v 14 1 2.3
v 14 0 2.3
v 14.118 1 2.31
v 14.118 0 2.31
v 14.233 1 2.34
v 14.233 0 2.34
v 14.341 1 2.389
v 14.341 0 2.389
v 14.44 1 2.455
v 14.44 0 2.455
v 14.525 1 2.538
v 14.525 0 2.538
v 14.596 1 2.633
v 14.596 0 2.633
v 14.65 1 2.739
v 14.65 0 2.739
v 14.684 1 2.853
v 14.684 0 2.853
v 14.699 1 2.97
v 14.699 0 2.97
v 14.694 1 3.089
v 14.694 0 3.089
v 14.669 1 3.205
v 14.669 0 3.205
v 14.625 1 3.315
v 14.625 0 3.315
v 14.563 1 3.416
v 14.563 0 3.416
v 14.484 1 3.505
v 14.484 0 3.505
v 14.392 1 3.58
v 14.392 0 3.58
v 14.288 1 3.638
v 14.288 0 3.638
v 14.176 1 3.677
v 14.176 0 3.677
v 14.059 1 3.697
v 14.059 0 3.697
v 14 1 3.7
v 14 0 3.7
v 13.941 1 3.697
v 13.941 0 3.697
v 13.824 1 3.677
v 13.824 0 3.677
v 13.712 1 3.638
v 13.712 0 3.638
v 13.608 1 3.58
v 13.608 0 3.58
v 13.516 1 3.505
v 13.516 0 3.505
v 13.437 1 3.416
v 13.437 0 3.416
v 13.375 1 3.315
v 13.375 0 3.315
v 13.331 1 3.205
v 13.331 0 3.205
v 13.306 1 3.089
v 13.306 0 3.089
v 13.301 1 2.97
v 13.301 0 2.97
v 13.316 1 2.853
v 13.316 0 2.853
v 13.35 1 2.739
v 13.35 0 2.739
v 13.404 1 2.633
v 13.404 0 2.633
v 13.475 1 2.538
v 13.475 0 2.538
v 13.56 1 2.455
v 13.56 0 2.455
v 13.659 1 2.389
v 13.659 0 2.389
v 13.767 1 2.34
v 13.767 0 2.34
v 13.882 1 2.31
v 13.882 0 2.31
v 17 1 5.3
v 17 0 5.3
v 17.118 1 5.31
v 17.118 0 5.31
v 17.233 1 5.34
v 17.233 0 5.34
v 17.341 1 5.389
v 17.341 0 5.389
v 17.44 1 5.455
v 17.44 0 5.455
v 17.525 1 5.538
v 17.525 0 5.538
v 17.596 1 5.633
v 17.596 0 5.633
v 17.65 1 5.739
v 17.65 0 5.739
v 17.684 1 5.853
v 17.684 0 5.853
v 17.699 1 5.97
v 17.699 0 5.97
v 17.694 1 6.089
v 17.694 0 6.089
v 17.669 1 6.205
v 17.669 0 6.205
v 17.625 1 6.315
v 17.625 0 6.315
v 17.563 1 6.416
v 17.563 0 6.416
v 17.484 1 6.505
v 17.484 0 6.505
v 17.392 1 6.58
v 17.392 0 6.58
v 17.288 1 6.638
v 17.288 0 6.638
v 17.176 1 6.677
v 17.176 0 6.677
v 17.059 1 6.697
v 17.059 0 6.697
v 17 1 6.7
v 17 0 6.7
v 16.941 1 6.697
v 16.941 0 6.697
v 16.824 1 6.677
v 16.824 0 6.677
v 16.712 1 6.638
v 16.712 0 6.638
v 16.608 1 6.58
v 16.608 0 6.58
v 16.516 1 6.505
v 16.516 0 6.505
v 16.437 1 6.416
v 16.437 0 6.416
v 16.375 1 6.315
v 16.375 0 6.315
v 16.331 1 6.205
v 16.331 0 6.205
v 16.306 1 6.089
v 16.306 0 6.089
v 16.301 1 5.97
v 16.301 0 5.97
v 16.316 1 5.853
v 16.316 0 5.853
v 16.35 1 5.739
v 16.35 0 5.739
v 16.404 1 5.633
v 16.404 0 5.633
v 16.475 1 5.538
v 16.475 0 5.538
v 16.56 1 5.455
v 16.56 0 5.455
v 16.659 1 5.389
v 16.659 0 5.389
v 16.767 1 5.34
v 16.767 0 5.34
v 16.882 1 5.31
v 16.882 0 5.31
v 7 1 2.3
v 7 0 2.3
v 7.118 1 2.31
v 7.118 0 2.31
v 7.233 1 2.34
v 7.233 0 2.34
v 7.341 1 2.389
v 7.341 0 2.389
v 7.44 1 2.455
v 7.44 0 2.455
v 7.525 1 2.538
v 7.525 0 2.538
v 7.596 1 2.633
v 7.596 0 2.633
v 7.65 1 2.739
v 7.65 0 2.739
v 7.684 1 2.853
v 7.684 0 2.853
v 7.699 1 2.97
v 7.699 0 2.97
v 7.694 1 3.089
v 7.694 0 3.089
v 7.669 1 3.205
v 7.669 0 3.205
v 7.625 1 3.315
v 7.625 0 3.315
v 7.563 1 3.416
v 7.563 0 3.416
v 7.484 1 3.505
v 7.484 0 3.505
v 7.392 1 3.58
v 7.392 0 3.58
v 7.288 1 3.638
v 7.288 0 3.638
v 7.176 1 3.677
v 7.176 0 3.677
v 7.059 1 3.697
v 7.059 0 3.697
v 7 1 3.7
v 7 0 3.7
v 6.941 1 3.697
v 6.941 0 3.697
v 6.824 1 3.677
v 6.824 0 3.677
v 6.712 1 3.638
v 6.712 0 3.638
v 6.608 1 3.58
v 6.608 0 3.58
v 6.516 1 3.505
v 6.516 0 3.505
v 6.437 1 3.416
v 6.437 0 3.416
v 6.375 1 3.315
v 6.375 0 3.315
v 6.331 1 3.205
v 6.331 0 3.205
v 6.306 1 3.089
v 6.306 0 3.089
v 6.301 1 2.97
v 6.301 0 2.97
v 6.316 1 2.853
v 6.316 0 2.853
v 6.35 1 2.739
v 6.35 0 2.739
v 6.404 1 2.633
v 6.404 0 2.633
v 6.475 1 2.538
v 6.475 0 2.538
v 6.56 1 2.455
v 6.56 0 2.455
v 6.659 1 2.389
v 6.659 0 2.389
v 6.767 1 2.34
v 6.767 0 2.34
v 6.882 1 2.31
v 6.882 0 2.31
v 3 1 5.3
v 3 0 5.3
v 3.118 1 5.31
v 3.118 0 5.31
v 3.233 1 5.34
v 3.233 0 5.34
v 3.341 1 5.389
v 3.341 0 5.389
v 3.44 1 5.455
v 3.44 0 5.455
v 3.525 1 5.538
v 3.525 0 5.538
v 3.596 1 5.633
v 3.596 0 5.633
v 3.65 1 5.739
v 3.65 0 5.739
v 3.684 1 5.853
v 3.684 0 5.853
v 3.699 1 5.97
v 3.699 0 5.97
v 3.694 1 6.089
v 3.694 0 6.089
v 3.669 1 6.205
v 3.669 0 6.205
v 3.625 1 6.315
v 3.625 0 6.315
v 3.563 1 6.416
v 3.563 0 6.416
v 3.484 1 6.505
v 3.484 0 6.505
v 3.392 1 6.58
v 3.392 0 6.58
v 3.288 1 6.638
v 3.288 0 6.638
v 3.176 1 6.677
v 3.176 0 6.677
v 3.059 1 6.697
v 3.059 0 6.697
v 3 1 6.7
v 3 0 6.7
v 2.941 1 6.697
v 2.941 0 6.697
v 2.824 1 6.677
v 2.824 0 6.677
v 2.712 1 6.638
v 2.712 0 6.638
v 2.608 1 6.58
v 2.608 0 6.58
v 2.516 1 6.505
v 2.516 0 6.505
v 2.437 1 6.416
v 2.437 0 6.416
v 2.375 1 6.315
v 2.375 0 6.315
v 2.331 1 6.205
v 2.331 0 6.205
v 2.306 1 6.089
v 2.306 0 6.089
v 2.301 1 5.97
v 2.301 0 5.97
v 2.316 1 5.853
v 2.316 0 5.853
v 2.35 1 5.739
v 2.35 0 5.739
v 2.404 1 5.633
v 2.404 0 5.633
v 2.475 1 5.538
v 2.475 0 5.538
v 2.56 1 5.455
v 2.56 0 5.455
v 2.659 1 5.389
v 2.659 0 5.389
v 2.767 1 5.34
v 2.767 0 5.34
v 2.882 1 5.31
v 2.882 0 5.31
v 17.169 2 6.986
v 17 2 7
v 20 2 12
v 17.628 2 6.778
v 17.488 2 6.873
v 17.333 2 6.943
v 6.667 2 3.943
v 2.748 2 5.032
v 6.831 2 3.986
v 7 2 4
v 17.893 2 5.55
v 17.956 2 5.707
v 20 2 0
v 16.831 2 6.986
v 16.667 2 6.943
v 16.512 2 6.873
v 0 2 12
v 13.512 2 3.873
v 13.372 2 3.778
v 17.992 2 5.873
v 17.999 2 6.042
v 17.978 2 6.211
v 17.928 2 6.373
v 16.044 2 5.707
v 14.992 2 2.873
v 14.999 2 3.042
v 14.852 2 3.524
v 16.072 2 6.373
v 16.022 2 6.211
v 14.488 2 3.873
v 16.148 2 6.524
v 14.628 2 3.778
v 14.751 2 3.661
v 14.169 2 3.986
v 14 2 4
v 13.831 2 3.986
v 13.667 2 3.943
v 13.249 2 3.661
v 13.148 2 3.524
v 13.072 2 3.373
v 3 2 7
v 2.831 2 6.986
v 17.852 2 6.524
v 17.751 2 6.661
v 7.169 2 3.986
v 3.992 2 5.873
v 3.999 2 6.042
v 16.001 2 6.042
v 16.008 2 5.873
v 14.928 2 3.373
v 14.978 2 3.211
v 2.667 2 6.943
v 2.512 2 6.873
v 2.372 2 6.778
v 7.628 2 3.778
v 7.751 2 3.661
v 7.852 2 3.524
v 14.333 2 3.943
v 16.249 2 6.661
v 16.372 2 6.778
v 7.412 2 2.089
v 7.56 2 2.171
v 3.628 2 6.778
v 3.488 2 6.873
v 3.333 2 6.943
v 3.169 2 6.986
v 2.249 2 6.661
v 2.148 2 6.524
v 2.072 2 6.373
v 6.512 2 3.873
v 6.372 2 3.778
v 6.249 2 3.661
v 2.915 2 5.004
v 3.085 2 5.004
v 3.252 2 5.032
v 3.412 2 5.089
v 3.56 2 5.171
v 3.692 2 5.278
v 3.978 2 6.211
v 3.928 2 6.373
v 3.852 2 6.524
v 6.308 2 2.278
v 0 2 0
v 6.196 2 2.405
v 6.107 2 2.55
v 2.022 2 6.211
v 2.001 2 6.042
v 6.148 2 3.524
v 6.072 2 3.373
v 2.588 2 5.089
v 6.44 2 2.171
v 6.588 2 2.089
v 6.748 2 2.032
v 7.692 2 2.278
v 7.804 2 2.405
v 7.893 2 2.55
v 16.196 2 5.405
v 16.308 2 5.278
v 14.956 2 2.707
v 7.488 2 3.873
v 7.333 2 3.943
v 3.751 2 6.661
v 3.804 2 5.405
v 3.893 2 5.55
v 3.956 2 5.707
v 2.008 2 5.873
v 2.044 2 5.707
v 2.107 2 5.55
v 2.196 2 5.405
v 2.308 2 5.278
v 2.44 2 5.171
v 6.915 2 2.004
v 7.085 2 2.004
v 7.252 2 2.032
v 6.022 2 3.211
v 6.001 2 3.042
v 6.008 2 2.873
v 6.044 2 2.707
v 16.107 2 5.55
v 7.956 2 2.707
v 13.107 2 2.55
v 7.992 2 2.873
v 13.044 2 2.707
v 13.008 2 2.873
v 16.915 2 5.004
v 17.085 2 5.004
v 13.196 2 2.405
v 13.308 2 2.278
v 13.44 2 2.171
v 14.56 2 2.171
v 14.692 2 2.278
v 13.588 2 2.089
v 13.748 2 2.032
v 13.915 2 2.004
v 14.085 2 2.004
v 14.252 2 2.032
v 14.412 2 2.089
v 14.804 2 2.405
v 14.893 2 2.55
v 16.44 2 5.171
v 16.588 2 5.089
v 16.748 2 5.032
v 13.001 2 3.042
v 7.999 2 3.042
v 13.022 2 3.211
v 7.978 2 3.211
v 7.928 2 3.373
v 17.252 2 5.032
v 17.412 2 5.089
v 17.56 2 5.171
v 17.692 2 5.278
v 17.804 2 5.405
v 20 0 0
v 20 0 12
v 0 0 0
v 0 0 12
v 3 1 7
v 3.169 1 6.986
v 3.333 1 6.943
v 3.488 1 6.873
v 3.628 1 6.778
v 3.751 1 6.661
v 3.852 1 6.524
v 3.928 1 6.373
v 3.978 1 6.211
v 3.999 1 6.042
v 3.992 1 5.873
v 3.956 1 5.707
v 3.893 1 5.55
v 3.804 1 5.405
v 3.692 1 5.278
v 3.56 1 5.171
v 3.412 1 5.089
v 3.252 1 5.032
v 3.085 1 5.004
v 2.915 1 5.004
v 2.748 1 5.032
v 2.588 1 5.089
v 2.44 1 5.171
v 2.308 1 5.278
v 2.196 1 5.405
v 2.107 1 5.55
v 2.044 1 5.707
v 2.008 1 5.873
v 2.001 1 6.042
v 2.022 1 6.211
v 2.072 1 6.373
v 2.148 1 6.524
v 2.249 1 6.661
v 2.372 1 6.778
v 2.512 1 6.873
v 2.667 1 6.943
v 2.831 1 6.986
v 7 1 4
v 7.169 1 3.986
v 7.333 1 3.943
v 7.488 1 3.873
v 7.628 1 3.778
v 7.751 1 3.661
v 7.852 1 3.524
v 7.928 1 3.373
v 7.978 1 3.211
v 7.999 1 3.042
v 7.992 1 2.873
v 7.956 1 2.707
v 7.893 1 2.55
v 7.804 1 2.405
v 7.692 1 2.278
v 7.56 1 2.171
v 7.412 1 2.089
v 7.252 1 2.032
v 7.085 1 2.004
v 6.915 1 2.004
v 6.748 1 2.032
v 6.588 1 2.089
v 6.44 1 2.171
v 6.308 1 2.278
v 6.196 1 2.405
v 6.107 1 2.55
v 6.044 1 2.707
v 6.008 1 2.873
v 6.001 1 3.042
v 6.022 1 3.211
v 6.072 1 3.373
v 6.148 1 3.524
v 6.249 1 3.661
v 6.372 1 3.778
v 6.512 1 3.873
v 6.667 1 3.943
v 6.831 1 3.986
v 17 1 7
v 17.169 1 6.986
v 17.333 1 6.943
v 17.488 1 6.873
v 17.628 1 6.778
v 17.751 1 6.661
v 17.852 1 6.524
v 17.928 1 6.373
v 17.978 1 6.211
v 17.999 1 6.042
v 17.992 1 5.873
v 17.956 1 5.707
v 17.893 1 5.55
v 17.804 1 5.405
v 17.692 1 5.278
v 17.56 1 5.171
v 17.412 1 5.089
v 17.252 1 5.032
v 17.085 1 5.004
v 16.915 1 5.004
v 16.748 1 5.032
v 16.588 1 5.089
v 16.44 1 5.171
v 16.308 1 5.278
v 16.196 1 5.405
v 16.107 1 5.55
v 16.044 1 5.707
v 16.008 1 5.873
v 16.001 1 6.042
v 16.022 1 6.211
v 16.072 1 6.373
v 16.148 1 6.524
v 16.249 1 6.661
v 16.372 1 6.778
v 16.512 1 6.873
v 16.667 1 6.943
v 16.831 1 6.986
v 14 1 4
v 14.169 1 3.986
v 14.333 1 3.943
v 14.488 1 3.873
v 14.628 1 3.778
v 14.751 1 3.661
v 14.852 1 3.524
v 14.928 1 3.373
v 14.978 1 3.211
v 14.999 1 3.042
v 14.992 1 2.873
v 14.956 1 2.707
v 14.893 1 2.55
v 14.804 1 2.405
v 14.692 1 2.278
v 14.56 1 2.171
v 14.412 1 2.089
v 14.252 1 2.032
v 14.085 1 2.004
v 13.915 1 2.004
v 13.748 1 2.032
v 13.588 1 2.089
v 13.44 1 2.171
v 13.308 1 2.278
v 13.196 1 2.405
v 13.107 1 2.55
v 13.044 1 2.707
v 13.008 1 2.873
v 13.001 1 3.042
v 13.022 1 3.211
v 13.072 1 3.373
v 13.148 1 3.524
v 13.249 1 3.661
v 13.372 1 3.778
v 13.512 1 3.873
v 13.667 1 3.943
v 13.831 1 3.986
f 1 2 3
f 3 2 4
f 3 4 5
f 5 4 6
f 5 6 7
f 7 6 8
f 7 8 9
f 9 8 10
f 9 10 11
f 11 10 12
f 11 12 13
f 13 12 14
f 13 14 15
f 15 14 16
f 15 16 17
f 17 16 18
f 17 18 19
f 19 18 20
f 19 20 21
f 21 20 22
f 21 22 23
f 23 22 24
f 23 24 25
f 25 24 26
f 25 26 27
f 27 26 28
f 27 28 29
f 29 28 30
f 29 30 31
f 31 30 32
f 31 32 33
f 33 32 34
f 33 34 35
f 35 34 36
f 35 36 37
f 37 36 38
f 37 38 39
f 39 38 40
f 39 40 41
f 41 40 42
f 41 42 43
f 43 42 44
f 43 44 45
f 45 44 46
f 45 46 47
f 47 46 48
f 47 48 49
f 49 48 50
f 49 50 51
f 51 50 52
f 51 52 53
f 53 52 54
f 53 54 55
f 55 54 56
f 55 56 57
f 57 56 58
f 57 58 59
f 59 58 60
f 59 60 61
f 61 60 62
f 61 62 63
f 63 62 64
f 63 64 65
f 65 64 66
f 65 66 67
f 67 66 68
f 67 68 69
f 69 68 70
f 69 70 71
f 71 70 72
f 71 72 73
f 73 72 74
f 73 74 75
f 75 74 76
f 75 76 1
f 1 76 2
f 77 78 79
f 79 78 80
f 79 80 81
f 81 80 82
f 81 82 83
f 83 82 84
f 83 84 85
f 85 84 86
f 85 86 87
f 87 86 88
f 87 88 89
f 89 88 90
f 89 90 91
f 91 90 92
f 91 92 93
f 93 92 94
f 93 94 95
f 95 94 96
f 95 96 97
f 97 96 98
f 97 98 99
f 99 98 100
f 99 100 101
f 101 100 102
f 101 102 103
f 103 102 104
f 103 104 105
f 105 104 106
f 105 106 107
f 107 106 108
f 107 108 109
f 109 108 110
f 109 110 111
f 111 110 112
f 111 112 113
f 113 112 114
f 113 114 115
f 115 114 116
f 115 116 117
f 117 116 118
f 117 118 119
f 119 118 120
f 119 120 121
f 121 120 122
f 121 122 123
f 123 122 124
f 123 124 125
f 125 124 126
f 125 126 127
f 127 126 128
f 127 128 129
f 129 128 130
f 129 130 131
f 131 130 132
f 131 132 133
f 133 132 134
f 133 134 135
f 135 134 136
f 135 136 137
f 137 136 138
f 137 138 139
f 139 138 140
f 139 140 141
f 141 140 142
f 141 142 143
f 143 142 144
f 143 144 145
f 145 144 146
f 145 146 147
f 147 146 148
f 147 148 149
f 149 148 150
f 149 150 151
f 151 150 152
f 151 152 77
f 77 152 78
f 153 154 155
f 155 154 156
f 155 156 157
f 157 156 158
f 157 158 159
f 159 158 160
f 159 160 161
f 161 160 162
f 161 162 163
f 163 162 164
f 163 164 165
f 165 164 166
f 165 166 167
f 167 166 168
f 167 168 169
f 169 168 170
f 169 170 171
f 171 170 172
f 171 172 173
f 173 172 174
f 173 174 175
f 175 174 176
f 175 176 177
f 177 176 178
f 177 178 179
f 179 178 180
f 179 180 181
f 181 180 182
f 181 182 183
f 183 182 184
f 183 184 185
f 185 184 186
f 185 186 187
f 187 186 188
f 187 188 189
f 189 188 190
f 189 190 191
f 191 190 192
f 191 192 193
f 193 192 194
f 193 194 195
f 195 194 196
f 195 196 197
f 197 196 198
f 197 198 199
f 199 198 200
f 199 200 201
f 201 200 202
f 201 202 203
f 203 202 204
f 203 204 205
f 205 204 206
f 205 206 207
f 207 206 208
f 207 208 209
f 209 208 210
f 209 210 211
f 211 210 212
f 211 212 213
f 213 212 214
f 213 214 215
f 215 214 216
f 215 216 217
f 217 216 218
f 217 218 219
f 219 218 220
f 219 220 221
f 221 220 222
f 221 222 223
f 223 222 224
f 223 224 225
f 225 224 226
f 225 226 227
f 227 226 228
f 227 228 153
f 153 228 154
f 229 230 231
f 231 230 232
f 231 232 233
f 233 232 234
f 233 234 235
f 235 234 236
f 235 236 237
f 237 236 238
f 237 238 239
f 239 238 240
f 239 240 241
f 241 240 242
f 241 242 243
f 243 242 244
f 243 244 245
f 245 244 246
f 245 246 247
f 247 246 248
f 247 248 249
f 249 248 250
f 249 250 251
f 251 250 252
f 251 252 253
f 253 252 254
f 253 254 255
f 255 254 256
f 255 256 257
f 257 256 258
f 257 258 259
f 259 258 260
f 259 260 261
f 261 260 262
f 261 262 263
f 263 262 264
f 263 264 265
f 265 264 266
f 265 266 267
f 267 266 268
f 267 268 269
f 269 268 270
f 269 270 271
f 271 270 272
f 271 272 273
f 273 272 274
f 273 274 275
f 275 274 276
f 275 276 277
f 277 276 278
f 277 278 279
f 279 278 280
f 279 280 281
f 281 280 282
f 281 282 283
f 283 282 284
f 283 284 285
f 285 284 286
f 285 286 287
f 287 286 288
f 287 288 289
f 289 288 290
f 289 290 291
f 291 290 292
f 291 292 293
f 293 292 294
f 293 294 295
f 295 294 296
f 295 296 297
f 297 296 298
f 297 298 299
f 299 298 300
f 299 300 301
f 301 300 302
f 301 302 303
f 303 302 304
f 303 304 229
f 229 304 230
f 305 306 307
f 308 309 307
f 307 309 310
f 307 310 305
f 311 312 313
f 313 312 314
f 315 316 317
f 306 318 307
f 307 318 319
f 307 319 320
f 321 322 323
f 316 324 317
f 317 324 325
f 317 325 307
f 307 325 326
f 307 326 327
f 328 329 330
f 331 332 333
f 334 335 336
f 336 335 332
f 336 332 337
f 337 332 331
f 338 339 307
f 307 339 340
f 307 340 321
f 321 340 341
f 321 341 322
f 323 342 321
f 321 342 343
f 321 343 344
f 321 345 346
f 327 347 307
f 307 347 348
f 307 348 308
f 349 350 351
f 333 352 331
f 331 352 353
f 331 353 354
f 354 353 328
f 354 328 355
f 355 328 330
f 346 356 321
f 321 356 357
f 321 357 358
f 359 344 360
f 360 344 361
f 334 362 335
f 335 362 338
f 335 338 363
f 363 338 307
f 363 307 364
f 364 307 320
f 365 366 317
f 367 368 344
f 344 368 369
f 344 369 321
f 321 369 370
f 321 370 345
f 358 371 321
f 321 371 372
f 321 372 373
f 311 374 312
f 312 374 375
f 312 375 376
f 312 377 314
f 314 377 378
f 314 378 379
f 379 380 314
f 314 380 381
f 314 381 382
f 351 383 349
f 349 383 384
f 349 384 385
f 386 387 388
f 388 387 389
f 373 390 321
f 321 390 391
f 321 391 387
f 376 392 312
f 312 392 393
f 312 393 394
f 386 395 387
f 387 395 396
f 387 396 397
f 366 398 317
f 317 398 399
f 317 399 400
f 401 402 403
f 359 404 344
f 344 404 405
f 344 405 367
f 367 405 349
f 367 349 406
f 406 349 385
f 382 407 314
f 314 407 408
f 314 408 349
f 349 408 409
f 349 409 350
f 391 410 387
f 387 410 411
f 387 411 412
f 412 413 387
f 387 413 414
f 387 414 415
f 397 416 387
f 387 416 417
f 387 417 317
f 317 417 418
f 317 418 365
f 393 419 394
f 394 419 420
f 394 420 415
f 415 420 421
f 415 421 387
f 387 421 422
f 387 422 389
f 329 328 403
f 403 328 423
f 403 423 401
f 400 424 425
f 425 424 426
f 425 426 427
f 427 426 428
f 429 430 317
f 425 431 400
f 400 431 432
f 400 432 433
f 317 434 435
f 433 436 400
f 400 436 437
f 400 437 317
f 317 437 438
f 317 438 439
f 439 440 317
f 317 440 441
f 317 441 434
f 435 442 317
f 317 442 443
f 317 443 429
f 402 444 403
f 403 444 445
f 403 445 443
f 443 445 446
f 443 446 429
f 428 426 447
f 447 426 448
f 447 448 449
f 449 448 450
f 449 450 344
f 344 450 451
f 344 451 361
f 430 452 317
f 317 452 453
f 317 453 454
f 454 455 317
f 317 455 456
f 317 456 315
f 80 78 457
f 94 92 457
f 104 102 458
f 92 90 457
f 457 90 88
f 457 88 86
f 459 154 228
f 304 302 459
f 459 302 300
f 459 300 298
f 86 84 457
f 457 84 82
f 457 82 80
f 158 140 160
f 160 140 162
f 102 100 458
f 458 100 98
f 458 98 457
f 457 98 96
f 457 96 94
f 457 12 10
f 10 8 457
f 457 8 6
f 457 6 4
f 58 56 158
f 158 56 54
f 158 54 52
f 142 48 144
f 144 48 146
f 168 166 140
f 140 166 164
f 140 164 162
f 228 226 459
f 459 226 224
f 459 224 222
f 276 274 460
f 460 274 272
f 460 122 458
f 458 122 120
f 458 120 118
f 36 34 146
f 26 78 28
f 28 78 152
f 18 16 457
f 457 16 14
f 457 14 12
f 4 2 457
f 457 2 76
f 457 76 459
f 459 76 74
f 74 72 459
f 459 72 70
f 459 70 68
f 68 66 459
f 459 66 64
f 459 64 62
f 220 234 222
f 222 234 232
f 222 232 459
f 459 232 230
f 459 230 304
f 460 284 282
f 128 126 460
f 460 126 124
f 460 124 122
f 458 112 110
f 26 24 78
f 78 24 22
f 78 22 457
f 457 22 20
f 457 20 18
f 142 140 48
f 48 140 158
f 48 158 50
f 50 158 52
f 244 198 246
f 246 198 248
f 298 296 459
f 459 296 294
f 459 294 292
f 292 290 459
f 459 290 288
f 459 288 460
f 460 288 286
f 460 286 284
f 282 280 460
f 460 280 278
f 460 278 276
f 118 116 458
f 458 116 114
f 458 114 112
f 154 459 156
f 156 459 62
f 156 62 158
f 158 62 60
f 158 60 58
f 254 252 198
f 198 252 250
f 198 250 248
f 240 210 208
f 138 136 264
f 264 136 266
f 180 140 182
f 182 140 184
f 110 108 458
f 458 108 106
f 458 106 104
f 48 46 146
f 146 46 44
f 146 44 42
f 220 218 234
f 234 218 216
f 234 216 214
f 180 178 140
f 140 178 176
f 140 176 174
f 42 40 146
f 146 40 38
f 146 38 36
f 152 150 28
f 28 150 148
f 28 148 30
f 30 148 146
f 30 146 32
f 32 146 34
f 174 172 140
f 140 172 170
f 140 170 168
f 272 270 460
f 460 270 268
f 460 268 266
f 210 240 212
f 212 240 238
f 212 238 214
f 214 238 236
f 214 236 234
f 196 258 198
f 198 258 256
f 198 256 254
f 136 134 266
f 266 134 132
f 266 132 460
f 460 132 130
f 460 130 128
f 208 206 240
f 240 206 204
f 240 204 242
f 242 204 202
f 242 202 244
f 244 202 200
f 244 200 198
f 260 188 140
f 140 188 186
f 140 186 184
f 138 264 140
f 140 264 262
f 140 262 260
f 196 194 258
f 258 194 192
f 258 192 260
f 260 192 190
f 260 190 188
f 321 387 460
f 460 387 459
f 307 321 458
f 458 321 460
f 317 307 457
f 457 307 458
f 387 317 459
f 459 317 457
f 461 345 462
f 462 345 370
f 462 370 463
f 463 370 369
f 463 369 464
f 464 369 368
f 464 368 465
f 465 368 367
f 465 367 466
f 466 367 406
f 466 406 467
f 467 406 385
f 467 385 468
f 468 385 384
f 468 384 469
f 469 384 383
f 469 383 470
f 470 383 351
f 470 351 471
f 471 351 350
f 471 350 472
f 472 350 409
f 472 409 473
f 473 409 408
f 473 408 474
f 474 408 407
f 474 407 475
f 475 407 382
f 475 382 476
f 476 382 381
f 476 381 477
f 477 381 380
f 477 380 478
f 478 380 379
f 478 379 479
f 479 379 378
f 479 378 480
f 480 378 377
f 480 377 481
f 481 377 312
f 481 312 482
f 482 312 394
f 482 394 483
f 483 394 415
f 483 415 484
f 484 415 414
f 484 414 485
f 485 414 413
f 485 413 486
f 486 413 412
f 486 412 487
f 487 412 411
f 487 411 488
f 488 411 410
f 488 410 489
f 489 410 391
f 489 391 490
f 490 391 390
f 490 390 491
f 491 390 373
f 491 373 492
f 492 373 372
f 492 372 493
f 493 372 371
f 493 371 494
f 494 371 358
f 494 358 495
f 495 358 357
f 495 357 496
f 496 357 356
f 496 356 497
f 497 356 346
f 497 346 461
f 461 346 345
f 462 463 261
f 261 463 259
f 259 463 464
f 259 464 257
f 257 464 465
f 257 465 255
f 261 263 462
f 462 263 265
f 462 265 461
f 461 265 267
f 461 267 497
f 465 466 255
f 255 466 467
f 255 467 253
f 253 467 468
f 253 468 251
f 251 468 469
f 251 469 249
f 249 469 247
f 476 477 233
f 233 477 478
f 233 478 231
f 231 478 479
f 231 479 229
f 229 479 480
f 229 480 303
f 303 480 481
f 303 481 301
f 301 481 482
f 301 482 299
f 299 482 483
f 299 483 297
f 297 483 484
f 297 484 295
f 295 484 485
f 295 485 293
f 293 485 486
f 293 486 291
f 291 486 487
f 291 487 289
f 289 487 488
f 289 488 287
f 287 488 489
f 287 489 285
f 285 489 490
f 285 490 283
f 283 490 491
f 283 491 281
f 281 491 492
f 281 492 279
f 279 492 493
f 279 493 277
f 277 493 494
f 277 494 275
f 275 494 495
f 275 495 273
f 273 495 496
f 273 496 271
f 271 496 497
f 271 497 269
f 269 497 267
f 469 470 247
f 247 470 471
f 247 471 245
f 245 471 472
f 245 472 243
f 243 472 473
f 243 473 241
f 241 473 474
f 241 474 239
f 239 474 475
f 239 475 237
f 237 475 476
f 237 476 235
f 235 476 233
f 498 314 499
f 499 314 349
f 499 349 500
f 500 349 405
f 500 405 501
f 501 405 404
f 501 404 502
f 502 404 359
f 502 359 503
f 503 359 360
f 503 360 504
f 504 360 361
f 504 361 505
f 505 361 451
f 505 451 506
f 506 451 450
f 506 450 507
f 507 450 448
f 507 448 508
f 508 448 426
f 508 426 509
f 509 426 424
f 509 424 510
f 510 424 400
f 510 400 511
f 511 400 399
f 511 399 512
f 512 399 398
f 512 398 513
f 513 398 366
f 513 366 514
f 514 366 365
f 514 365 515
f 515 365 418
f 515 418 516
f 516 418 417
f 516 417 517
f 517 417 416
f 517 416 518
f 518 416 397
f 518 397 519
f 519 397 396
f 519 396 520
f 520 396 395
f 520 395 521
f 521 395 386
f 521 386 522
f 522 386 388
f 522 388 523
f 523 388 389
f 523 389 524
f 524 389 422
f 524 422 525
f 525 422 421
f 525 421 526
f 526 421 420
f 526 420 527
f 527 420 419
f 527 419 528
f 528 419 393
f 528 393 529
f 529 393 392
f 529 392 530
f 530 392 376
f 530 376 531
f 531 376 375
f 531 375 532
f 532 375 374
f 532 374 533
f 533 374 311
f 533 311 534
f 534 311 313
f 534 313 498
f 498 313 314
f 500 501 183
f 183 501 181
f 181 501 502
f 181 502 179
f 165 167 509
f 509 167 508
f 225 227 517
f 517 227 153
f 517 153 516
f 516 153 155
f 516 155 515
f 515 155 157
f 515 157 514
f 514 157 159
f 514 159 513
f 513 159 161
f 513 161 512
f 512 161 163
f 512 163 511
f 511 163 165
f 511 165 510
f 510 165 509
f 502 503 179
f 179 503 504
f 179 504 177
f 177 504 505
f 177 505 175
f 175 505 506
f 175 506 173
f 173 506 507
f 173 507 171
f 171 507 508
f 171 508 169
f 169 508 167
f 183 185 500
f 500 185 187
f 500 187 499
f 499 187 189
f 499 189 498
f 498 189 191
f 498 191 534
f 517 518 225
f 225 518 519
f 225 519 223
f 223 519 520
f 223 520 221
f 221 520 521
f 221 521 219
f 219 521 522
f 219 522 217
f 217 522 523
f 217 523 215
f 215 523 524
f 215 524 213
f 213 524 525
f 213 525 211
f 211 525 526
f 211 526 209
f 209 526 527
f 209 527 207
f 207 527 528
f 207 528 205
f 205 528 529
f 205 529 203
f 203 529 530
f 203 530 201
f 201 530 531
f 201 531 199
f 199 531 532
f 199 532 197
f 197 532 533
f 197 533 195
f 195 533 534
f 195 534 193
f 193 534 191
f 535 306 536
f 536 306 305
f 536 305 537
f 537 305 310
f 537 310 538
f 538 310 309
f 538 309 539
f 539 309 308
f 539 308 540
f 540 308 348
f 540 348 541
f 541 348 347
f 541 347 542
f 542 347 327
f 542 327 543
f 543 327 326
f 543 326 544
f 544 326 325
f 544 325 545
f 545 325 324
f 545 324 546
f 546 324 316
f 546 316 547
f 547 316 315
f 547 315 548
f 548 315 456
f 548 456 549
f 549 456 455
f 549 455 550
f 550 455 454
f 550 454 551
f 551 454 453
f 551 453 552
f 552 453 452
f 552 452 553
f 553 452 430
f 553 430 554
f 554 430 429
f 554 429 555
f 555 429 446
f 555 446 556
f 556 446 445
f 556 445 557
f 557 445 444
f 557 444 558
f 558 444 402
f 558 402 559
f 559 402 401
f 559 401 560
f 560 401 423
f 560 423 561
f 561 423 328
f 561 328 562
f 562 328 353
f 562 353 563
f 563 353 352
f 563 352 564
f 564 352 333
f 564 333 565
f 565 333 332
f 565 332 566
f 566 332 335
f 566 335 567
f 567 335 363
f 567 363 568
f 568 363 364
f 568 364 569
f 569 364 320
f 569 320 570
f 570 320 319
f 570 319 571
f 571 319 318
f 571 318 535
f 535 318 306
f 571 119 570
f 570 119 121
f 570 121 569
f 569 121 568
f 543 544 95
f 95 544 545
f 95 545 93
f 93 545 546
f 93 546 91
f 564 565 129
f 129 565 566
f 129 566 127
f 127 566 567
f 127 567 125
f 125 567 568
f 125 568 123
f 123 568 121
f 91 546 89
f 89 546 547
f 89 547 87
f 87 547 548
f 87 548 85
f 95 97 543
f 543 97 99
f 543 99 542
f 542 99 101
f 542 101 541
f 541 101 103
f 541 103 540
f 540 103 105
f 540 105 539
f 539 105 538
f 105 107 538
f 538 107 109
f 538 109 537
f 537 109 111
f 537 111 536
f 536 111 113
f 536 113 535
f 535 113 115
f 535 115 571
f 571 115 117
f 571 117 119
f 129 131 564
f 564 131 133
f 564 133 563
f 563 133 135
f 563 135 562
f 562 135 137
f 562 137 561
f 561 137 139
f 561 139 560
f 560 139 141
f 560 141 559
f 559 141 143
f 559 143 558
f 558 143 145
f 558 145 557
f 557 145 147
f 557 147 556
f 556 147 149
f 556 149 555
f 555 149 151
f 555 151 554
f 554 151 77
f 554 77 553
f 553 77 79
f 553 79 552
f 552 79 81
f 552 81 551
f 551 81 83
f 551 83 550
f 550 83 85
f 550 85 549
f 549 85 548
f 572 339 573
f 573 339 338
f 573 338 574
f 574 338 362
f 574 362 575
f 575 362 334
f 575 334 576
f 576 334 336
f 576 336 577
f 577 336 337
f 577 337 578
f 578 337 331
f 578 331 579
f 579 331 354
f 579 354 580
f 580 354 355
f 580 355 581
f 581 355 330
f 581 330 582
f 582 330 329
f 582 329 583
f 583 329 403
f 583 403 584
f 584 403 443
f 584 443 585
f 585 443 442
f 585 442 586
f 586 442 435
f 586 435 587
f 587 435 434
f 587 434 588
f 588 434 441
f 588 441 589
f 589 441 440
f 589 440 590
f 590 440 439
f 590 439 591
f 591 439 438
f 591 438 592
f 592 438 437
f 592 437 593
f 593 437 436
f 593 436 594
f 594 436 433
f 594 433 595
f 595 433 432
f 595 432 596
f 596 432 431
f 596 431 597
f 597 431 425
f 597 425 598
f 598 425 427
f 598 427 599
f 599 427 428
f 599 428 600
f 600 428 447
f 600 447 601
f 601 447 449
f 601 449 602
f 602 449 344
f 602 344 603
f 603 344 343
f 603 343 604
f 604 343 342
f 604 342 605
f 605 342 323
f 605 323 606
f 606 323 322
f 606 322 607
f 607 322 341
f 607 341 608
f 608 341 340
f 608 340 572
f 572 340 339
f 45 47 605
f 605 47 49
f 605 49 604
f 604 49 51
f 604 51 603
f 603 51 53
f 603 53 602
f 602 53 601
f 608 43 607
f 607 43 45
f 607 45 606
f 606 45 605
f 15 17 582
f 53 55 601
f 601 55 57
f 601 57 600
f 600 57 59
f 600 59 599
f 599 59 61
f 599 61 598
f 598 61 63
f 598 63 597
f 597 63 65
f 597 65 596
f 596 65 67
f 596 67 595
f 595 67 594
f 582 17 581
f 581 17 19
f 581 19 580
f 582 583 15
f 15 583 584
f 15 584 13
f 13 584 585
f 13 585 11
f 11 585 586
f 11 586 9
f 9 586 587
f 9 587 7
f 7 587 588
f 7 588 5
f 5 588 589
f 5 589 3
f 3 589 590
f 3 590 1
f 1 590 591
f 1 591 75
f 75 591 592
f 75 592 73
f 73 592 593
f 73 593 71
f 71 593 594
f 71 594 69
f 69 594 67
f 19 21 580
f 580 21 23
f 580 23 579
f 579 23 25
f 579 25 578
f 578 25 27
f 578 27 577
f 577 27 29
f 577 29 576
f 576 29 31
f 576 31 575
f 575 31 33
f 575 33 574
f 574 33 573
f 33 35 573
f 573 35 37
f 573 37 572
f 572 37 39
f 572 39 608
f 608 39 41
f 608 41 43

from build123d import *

# Parameters (mm, degrees)
SKETCH_1_W          = 20
SKETCH_1_H          = 12
SKETCH_1_R          = 0.7
EXTRUDE_1_DEPTH     = 2
CUT_EXTRUDE_START   = 2
SKETCH_1_3_R        = 1
CUT_EXTRUDE_1_DEPTH = 1


with BuildPart() as part:
    # 草图1 → 凸台-拉伸1 (new body)
    with BuildSketch(Plane(origin=(0, 0, 0), x_dir=(1, 0, 0), z_dir=(0, 1, 0))):
        with Locations((10, -6)):
            Rectangle(SKETCH_1_W, SKETCH_1_H)
        with Locations(Location((3, -6, 0), (0, 0, 270))):
            Circle(SKETCH_1_R, mode=Mode.SUBTRACT)
        with Locations(Location((7, -3, 0), (0, 0, 270))):
            Circle(SKETCH_1_R, mode=Mode.SUBTRACT)
        with Locations(Location((14, -3, 0), (0, 0, 270))):
            Circle(SKETCH_1_R, mode=Mode.SUBTRACT)
        with Locations(Location((17, -6, 0), (0, 0, 270))):
            Circle(SKETCH_1_R, mode=Mode.SUBTRACT)
    extrude(amount=EXTRUDE_1_DEPTH)

    # 草图1<3> → 切除-拉伸1 (cut)
    with BuildSketch(Plane(origin=(0, 0, 0), x_dir=(1, 0, 0), z_dir=(0, 1, 0)).offset(CUT_EXTRUDE_START)):
        with Locations(Location((3, -6, 0), (0, 0, 270))):
            Circle(SKETCH_1_3_R)
        with Locations(Location((7, -3, 0), (0, 0, 270))):
            Circle(SKETCH_1_3_R)
        with Locations(Location((14, -3, 0), (0, 0, 270))):
            Circle(SKETCH_1_3_R)
        with Locations(Location((17, -6, 0), (0, 0, 270))):
            Circle(SKETCH_1_3_R)
    extrude(amount=-CUT_EXTRUDE_1_DEPTH, mode=Mode.SUBTRACT)


solid = part.part
